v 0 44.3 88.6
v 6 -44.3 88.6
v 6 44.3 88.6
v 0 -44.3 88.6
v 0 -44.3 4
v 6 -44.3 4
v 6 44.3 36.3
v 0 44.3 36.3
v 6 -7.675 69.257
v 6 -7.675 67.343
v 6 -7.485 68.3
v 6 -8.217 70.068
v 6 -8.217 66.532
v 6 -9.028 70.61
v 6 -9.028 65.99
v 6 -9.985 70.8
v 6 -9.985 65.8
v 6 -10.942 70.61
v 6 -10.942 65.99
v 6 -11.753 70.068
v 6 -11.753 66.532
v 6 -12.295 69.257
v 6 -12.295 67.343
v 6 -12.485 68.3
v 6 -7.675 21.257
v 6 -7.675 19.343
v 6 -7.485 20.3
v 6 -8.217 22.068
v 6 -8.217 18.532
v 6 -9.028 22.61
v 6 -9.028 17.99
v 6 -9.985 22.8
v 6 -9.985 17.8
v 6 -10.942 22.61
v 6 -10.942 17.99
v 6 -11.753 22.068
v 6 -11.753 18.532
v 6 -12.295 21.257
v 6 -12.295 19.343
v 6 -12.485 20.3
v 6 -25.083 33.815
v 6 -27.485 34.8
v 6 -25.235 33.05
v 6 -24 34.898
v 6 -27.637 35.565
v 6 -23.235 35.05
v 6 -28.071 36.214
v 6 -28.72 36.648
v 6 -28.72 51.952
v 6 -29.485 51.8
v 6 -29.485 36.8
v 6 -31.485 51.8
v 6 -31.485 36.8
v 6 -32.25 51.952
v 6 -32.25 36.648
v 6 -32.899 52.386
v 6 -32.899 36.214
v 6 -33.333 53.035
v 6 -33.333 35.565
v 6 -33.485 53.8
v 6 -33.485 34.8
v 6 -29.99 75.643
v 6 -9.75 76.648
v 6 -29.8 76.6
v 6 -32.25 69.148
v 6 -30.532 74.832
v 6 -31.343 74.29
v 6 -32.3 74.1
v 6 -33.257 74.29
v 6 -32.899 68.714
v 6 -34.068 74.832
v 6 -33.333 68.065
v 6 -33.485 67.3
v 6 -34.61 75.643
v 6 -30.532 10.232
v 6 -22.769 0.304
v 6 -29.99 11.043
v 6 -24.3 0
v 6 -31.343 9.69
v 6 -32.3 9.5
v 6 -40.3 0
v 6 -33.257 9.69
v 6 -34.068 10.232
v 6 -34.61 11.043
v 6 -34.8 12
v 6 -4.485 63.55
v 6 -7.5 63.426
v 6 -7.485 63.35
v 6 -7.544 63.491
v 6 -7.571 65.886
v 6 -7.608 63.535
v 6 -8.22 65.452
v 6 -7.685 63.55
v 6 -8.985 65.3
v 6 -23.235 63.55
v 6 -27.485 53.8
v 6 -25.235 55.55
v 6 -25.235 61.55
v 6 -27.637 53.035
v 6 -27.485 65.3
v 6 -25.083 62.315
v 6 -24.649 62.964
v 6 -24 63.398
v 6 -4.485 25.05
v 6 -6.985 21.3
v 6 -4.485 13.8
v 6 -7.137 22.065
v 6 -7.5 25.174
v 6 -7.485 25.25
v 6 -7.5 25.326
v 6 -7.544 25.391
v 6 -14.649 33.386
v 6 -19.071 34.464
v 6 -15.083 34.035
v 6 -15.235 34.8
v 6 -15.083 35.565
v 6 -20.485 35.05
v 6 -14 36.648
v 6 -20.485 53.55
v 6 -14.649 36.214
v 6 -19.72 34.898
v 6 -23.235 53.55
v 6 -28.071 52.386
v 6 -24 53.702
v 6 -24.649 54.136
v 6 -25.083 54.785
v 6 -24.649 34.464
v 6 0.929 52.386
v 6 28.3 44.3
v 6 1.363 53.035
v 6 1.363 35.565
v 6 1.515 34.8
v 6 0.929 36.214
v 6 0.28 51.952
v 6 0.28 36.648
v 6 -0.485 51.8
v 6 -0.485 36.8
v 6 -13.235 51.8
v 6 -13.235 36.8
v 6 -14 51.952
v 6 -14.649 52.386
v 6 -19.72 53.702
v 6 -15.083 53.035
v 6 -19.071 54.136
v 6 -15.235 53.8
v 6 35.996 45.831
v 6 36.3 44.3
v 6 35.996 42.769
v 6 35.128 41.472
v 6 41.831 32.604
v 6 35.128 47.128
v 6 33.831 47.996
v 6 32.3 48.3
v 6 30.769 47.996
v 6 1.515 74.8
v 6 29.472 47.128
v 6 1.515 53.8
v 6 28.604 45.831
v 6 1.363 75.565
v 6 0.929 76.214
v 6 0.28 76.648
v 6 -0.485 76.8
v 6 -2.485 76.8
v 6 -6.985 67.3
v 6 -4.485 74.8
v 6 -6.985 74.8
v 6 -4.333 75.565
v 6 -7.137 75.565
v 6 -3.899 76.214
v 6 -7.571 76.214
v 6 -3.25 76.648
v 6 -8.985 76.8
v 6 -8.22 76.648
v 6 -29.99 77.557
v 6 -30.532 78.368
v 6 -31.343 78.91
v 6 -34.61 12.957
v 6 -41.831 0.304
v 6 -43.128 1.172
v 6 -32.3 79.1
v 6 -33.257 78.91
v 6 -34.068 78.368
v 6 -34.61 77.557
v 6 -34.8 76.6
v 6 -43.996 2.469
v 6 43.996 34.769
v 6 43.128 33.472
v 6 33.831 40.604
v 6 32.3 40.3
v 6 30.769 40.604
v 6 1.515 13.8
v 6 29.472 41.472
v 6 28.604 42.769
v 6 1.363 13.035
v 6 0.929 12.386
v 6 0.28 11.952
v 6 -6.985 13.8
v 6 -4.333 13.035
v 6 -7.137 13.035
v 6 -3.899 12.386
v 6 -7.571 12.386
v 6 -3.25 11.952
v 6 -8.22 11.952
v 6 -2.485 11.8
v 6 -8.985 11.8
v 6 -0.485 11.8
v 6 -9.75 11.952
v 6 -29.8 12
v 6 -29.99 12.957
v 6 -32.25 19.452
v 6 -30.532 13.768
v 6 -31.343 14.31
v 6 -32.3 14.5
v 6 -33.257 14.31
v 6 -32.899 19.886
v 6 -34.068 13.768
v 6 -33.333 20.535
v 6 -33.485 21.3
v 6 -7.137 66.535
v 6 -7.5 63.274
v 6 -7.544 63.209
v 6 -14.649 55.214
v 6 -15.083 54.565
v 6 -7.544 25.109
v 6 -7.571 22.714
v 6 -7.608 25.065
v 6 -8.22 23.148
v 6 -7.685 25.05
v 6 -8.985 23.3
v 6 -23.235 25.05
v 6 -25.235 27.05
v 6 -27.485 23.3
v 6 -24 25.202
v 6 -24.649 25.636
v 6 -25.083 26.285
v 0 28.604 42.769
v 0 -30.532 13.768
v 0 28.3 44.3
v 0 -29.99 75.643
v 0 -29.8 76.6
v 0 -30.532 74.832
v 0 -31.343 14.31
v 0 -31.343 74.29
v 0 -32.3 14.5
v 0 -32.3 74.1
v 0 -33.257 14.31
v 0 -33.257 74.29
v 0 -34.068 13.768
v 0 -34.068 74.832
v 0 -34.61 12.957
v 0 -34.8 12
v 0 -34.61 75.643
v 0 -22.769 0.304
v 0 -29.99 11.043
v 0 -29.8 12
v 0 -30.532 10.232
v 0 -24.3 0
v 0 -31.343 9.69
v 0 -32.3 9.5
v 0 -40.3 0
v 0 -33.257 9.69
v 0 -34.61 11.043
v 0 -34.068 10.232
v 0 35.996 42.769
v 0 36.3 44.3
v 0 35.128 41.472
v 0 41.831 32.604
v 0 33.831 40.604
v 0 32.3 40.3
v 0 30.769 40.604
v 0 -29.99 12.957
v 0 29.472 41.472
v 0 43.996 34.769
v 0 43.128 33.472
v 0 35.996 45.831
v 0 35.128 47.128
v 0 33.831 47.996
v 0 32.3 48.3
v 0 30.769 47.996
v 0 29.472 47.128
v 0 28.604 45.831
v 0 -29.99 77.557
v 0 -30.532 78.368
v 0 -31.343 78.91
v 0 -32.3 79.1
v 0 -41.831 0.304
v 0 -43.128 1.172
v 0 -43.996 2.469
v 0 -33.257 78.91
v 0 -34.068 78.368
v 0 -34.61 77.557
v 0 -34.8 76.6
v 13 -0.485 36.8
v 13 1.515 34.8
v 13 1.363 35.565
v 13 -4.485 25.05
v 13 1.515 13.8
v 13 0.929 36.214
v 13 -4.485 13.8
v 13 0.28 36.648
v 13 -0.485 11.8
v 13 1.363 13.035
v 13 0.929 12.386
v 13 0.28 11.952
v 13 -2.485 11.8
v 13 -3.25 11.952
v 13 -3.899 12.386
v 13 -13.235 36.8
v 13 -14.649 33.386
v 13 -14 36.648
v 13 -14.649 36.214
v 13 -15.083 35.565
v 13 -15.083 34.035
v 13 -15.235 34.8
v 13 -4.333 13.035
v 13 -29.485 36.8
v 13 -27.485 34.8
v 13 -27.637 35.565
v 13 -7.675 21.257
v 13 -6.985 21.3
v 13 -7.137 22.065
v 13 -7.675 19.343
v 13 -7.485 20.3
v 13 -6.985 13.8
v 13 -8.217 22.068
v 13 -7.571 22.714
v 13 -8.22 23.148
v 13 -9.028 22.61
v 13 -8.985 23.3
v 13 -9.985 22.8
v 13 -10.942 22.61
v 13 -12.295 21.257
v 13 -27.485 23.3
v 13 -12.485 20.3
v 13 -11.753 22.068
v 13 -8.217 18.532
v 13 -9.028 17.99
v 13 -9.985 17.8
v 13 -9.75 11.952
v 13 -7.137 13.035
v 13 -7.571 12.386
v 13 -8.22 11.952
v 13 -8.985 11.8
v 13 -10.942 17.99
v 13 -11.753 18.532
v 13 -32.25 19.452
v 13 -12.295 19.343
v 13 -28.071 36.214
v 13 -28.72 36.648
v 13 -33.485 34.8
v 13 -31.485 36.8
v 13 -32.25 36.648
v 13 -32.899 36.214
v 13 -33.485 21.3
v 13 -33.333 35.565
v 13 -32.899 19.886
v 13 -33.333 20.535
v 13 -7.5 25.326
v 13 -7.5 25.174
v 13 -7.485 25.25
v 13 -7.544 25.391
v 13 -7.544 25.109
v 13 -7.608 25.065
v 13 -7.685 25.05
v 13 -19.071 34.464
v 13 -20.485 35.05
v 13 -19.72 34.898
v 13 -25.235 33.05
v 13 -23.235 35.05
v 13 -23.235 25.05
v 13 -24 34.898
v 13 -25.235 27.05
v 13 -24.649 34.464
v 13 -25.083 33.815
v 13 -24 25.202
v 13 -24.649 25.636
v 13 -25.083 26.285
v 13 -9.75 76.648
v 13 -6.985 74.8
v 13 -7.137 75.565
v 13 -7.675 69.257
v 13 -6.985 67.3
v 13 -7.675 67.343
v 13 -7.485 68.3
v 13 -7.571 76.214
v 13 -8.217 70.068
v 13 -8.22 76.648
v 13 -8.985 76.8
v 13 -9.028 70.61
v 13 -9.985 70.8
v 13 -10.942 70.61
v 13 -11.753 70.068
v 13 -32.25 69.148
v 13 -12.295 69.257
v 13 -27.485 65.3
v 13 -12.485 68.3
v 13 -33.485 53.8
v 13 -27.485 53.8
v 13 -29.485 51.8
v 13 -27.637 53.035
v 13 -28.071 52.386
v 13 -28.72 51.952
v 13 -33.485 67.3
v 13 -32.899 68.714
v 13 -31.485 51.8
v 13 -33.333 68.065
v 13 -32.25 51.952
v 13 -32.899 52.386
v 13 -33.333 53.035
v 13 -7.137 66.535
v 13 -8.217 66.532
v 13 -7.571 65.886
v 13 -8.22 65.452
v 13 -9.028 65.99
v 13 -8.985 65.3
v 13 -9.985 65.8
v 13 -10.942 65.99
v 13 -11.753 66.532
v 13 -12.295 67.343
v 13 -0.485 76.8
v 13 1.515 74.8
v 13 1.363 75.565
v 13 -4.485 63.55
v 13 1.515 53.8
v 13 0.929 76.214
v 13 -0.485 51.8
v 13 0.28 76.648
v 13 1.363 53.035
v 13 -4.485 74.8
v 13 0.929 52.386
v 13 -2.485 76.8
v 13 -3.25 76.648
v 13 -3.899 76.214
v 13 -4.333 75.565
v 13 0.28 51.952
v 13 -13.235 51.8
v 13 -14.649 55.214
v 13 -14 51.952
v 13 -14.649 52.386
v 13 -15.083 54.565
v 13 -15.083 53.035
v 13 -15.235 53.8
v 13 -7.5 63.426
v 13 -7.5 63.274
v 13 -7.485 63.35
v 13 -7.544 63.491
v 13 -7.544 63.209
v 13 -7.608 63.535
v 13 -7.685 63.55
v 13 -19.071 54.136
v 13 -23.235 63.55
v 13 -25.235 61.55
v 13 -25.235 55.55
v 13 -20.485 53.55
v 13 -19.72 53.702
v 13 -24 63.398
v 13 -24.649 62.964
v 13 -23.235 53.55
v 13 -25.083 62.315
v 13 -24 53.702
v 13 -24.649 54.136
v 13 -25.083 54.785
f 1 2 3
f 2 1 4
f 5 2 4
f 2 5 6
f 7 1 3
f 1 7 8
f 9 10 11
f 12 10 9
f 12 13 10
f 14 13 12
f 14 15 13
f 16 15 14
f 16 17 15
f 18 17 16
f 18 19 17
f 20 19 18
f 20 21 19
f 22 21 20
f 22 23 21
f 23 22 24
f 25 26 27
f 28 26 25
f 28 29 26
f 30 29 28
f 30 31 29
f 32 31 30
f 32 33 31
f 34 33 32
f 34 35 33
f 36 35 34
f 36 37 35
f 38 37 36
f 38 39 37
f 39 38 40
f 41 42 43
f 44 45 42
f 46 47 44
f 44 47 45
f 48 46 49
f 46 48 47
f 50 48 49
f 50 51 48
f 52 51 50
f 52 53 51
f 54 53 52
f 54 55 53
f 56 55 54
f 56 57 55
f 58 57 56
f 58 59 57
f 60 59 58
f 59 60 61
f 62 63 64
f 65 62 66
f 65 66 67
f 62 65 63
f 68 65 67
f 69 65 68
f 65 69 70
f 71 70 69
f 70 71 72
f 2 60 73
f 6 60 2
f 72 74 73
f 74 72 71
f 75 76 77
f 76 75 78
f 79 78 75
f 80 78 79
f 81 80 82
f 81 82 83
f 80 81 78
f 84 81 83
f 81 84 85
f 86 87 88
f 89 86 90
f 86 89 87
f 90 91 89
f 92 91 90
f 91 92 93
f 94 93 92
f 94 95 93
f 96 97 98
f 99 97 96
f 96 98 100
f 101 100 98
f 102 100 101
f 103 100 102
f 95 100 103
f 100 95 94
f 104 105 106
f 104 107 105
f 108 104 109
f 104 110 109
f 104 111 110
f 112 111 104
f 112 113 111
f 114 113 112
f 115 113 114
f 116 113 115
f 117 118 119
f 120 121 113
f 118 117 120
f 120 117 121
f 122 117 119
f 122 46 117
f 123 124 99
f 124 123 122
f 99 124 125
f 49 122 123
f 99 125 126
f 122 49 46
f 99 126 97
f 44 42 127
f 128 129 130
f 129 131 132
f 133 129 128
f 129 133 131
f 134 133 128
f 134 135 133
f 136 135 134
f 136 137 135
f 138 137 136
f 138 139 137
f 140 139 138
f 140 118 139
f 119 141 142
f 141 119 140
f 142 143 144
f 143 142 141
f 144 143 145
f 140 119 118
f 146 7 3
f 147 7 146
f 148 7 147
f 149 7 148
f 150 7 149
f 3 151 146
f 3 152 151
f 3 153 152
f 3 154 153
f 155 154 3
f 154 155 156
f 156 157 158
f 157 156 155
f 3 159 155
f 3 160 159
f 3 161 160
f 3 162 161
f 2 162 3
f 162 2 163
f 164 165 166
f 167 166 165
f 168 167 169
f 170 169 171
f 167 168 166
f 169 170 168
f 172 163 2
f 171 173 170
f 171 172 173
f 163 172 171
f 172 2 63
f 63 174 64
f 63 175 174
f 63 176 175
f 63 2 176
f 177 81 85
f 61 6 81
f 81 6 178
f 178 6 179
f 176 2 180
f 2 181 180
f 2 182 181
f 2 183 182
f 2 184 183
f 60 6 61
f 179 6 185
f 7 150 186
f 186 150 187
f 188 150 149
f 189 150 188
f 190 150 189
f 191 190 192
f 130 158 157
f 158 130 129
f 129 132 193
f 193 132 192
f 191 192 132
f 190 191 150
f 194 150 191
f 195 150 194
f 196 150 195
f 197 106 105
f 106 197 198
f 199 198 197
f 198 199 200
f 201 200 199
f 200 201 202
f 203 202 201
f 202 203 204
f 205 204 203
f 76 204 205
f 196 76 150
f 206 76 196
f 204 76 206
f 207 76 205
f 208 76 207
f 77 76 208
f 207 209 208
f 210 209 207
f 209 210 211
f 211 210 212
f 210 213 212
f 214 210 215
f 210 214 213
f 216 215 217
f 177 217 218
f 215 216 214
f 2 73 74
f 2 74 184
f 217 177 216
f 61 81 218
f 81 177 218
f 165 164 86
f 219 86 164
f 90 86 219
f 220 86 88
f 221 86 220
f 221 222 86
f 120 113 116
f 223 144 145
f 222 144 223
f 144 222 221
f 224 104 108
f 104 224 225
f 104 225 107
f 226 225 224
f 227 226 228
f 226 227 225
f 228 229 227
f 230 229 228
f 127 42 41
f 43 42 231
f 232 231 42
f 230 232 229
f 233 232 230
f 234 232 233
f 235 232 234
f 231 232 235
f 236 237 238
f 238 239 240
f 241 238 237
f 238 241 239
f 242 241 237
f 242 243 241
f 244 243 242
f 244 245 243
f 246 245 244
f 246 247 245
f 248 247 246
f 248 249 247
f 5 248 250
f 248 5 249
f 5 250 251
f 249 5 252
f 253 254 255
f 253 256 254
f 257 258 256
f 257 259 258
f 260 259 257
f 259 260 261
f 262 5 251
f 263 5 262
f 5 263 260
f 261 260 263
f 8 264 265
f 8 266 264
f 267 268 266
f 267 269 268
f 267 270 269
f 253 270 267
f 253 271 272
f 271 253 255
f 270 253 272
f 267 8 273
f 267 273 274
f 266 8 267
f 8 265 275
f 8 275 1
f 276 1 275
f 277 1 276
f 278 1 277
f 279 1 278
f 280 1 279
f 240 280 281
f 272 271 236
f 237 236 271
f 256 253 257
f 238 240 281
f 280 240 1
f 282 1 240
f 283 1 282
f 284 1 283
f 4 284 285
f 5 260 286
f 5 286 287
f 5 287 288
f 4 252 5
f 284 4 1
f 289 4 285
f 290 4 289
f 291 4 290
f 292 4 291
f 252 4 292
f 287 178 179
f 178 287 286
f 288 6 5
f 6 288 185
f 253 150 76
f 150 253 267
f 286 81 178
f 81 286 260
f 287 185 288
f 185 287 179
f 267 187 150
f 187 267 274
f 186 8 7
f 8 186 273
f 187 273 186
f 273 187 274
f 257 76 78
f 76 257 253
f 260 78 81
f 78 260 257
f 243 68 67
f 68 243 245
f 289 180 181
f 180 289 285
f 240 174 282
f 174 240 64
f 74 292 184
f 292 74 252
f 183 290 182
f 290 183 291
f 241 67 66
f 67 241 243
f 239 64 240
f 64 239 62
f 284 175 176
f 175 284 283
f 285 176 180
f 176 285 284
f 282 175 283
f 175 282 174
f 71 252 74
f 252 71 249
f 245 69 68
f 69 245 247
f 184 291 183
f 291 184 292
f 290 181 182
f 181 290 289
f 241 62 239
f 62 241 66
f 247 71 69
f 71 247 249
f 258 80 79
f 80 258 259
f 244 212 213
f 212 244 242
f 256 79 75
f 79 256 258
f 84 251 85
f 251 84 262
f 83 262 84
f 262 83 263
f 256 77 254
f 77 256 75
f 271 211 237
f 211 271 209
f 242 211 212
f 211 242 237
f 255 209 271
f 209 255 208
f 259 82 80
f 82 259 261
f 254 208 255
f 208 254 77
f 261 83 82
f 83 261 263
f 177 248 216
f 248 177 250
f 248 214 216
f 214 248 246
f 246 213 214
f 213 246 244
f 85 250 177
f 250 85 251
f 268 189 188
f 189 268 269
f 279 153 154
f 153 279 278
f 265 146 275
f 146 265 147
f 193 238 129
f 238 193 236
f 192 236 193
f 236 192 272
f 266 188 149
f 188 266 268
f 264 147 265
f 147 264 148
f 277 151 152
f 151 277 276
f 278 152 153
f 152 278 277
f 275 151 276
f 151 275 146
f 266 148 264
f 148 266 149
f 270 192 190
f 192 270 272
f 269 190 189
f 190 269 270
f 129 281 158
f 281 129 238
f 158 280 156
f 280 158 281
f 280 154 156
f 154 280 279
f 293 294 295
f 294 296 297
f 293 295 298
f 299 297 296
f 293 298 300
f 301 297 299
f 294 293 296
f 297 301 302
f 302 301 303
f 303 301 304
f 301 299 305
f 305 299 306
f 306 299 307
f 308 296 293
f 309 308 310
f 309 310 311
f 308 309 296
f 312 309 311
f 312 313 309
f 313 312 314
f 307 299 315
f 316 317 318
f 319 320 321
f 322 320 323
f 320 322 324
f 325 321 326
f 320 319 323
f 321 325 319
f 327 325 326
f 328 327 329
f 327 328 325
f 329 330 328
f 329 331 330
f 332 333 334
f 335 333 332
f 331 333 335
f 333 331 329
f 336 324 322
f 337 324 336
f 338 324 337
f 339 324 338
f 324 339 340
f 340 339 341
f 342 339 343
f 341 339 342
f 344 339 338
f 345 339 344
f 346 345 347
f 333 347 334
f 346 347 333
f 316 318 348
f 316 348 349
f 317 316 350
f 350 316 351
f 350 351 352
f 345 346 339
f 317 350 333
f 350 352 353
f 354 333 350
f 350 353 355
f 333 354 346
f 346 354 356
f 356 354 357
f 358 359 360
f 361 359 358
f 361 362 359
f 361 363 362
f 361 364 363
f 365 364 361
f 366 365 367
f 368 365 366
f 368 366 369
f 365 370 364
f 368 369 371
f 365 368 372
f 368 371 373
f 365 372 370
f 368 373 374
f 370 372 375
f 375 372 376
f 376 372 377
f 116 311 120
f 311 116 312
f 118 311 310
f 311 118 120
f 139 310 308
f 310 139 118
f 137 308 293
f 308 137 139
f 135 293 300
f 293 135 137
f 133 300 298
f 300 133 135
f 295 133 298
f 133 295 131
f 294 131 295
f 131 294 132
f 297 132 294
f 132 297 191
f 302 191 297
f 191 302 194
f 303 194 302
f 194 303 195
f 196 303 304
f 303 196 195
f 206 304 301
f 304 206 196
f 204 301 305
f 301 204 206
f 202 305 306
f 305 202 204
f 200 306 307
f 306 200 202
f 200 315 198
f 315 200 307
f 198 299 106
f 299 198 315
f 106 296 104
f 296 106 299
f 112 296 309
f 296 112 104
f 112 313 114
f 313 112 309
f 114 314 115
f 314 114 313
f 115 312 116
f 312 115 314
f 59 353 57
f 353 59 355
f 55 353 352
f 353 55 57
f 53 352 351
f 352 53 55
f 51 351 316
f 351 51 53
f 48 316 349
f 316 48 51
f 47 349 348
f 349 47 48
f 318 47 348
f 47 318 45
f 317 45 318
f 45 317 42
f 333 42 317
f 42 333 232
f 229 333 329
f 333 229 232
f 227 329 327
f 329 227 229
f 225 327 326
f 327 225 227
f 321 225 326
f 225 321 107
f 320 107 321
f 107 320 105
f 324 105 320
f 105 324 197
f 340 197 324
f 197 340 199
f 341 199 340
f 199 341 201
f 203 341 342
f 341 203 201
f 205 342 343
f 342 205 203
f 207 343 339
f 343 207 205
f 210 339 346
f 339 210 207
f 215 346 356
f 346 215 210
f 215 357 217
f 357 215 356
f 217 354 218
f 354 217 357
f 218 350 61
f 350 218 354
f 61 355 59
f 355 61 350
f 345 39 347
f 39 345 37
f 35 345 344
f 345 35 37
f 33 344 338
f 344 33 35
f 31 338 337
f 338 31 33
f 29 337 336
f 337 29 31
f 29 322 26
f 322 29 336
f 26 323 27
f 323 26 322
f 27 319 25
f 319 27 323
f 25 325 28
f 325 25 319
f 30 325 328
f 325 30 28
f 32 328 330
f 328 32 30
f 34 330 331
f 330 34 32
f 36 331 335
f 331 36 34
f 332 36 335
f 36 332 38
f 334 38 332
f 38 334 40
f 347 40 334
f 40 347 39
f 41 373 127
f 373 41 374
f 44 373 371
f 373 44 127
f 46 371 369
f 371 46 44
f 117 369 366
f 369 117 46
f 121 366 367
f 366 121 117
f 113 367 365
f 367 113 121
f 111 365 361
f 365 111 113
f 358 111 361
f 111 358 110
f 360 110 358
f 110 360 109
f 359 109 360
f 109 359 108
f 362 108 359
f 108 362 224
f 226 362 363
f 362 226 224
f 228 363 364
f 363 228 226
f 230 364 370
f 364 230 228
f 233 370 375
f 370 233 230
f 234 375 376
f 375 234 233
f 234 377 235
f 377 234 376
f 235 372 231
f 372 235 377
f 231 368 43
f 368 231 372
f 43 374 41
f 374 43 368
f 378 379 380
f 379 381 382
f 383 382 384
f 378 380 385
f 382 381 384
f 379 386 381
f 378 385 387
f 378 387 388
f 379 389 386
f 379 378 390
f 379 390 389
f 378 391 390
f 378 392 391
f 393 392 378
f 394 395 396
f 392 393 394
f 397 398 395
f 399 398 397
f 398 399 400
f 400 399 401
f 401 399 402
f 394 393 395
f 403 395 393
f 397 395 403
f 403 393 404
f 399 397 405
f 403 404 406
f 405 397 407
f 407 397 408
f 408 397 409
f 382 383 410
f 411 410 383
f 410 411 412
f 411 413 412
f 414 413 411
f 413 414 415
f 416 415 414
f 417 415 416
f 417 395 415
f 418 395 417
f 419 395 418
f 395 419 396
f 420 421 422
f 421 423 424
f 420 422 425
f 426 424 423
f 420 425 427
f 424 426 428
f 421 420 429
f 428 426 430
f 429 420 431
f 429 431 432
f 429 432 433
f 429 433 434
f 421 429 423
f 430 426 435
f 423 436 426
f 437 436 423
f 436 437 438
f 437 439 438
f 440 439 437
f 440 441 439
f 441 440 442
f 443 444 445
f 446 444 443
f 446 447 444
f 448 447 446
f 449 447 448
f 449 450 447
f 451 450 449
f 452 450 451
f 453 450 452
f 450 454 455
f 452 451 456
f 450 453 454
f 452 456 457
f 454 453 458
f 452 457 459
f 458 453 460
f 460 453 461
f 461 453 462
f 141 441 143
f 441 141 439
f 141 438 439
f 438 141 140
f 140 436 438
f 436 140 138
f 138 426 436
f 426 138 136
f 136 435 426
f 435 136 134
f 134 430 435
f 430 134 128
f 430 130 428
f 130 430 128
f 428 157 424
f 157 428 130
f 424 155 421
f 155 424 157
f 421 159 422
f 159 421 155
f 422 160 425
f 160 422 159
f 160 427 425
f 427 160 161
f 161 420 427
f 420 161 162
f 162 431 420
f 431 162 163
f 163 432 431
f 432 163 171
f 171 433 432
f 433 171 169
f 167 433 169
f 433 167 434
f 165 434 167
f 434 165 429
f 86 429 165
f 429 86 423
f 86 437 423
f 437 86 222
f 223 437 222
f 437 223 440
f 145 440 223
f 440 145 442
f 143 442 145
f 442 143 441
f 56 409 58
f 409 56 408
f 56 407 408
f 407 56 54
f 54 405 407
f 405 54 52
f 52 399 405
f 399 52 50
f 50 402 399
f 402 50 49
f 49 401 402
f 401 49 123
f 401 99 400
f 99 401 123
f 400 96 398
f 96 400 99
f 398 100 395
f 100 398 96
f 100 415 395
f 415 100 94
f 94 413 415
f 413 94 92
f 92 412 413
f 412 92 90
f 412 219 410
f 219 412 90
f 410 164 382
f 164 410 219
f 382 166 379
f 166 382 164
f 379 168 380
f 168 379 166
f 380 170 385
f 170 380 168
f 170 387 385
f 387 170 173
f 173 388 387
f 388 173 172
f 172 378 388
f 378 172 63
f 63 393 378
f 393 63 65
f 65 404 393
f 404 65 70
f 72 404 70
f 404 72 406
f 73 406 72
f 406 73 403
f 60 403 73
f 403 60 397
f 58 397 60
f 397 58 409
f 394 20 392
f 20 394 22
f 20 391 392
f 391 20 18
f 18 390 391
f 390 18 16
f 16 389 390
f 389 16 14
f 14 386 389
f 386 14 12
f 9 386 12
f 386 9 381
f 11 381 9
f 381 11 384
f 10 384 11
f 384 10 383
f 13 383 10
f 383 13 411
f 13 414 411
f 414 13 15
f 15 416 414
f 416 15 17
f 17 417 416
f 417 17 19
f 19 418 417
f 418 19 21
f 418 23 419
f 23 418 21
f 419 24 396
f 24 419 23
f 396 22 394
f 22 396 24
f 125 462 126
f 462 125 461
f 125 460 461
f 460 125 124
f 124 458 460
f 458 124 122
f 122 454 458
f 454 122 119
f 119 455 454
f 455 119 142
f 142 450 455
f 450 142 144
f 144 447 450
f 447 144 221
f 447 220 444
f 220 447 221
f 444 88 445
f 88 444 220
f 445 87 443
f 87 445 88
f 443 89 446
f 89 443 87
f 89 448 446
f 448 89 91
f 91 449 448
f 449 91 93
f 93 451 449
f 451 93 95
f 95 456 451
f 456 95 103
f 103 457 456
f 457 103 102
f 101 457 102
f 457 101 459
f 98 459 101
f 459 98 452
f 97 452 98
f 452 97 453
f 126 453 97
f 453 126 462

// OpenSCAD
// file: ../../conf/constants.scad
/**********************************************************************************************************************
 **
 ** conf/constants.scad
 **
 ** This file contains constants and aliases used for the part size definitions.
 **
 **********************************************************************************************************************/

/**
 * The alias names for the rails.
 * A is the "front left" rail, B the "front right" rail, C the back rail.
 * These constants are also used for the sides of the frame and the effector; in this case, side A is the one 
 * opposing rail A.
 */
A = 0;
B = 1;
C = 2;

/**
 * Aliases for metric screw/nut sizes.
 */
M2 = 2;
M3 = 3;
M4 = 4;
M5 = 5;
M8 = 8;

/** 
 * Aliases for NEMA stepper motors.
 */
NEMA14 = 14;
NEMA17 = 17;
NEMA23 = 23;
// file: ../../conf/printer_config.scad
/**********************************************************************************************************************
 **
 ** conf/printer_config.scad
 **
 ** This file contains the main control variables that determine the size and shape of the printer. Note that in the
 ** actual parts specifications, the constants defined here will only ever be accessed through functions defined in
 ** conf/derived_sizes.scad exclusively to allow for easier adaptation, should the mode of calculation change. 
 **
 ** All sizes in mm. Caution: Little to no cross-checking is implemented. Change values sensibly and one at a time.
 **
 ** This file is NOT to be included by any other file except for conf/derived_sizes.scad.
 **
 **********************************************************************************************************************/

include <constants.scad>

// ===== PRINTER CONFIGURATION ========================================================================================

// The length of the vertical MakerSlide extrusions that make up the rails for the carriages.
FRAME_V_RAIL_HEIGHT = 800;

// The length of the horizontal 20x20 V-Slot extrusions that form the sides of the triangle.
FRAME_H_RAIL_LENGTH = 400;

// ===== FABRICATED PART DIMENSIONS ===================================================================================

// The additional clearance to leave around the MakerSlide extrusion.
MAKERSLIDE_CLEARANCE = 0.05;

// The thickness of the walls outside the extruded parts.
FRAME_PART_WALL_THICKNESS = 3;

// The thickness of the wall that separates the vertical rails from the horizontal extrusions.
FRAME_V_H_RAIL_SEPARATION = 8;

// The depth of the holes that hold the V-Slot extrusions.
FRAME_PART_VSLOT_DEPTH = 30;

// Whether to use a horizontal rail at the base of the printer or not.
FRAME_HORIZONTAL_BASE_RAIL = false;

// The depth of the holes in the foot that hold the MakerSlide extrusions. This is for the foot version that holds
// a horizontal rail.
FRAME_FOOT_RAIL_MAKERSLIDE_DEPTH = 25; 

// The depth of the holes in the foot that hold the MakerSlide extrusions. This is for the foot version that does not
// hold a horizontal rail.
FRAME_FOOT_NORAIL_MAKERSLIDE_DEPTH = 17.5; 

// The size of the screws that can be used to mount the foot to the underlying surface.
FRAME_FOOT_BOTTOM_SCREW_SIZE = M5;

// The height of the bracket that holds the motor. WARNING: Increasing this might make it difficult to 
// turn the screws that hold the motor.
FRAME_MOTOR_BRACKET_HEIGHT = 25;

// The height of the bracket that holds the intermediate level with the working surface (print bed).
FRAME_BED_BRACKET_HEIGHT = 25; 

// The depth of the holes in the head that hold the MakerSlide extrusions.
FRAME_HEAD_MAKERSLIDE_DEPTH = 35; 

// The thickness of the carriage base plate. A thicker plate will make the carriage stiffer, but cost more
// material to print and take away space from the working area.
CARRIAGE_PLATE_THICKNESS = 6;

// The width of the border around the holes in the carriage base plate that hold the V-Wheels. 
CARRIAGE_PLATE_BORDER_WIDTH = 8;

// The range by which the vertical belt tensioner can be adjusted.
TENSIONER_RANGE = 15;

// The distance between the rods that hold the effector.
ROD_DISTANCE = 65;

// The outer diameter of the rods.
ROD_OUTER_DIAMETER = 6;

// The inner diameter of the rods. Set to 0 if the rods are not hollow.
ROD_INNER_DIAMETER = 4;

// The additional clearance to leave between the rod and the holder.
ROD_CLEARANCE = 0.05;

// The thickness of the outer wall around the rod.
ROD_HOLDER_WALL_THICKNESS = 2;

// The depth of the insets that hold the rods.
ROD_HOLDER_DEPTH = 10;

// The minimum angle of the arms.
ROD_MIN_ANGLE = 20;

// The factor used to round up the rod length.
ROD_ROUND_UP_TO = 5;

// The thickness of the magnet holder arms.
MAGNET_HOLDER_THICKNESS = 5;

// The additional clearance to leave around the magnet holder pin.
MAGNET_CLEARANCE = 0.025;

// The upward angle of the ball holder on the carriage.
CARRIAGE_BALL_HOLDER_ANGLE = 10;

// The additional distance between the magnets on the effector (not the rod distance - the other one :-)).
// This value is added to the minimum distance determined by the magnet size and wall thickness.
EFFECTOR_BALL_ADDITIONAL_DISTANCE = 15;

// The thickness of the effector plate.
EFFECTOR_THICKNESS = 8;
// file: ../extrusions/makerslide.scad
/**********************************************************************************************************************
 **
 ** parts/extrusions/makerslide.scad
 **
 ** This file ontains some general functions that provide the dimensions of the profile as well as the modules used 
 ** to import the rendered rails. 
 ** This file is intended to be included by other files down the line.
 **
 **********************************************************************************************************************/

use <../../conf/colors.scad>
use <../../conf/derived_sizes.scad>
use <../../conf/part_sizes.scad>

/**
 * Provides the pre-rendered main vertical rail.
 * The extrusion will reach into positive X and Z space while being centered on the Y axis.
 */
module makerslide_vertical_rail() {
	color_extrusion()
		import(file = "makerslide_rail.stl"); 
}

/**
 * Create an object that resembles the outer shell of a MakerSlide extrusion. Usage is similar
 * to makerslide_vertical_rail(length). This is handy to punch a hole into a printed part that will later
 * accomodate the MakerSlide extrusion.
 */
module makerslide_punch(length) {
	color_punch()
		linear_extrude(height = length, center = false, convexity = 10)
			union() {
				hull() {
					// use two circles for the back sides
					_y_offset = makerslide_base_width()/2 - makerslide_edge_radius();
					translate([makerslide_edge_radius(), -_y_offset, 0])
						circle(r = makerslide_edge_radius(), $fn = makerslide_edge_resolution());
					translate([makerslide_edge_radius(), _y_offset, 0])
						circle(r = makerslide_edge_radius(), $fn = makerslide_edge_resolution());
					// use a rectangle to shape the front side
					translate([makerslide_base_depth() - 1, -makerslide_base_width()/2, 0])
						square([1, makerslide_base_width()]);
				}
				_rail_base_x = makerslide_base_depth() - makerslide_edge_radius() - makerslide_rail_depth();
				_rail_offset_y = makerslide_base_width()/2;
				_rail_punch_width = makerslide_rail_width();
				_rail_punch_depth = 2*makerslide_rail_depth() + makerslide_edge_radius();
				translate([_rail_base_x, -_rail_offset_y - _rail_punch_width, 0])
					square([_rail_punch_depth, _rail_punch_width]);
				translate([_rail_base_x, _rail_offset_y, 0])
					square([_rail_punch_depth, _rail_punch_width]);

				// previous version:
				// // use the profile itself as the basic shape
				// import(file = "makerslide.dxf"); 
				// // add a rectangle to fill the holes on the left/right (small) sides 
				// // as well as most of the inside of the profile
				// translate([2, -20, 0])
				// 	square([18, 40]);
				// // add a second rectangle to fill the gaps on the back (we want to keep the rounded edges)
				// translate([0, -18, 0])
				// 	square([2, 36]);
				
			}
}
// file: ../../bom/bom.scad
/**********************************************************************************************************************
 **
 ** bom/bom.scad
 **
 ** This file provides the functions to generate a basic bill of materials (BOM) from the model.
 **
 **********************************************************************************************************************/

/**
 * A recursive function to format the parent module hierarchy as a series of delimited sub-strings.
 * Example: "vertical_axis_assembly>_vertical_axis_assembly>makerslide_vertical_rail"
 */
function _bom_parent_list(level, delimiter = ">") = 
	(level < $parent_modules - 1) ? str(_bom_parent_list(level = level + 1), delimiter, parent_module(level)) : "";

module bom_entry(description = "", size = "", number = 1) {
	// Only perform any actions if WRITE_BOM is set. This is done through the command line - see Makefile.
	if (WRITE_BOM) {
		echo(str("BOM;", description, ";", size, ";", number, ";", _bom_parent_list(level = 2)));
	}
}
// file: ../../conf/part_sizes.scad
/**********************************************************************************************************************
 **
 ** conf/part_sizes.scad
 **
 ** This file contains functions that provide fixed sizes of external standard parts. Normally, these values
 ** would have been kept with the individual parts, but that would result in a recursive dependency.
 **
 **********************************************************************************************************************/

// ===== ALIAS CONSTANTS FOR VARIOUS SIZES =============================================================================

M3 = 3;
M4 = 4;
M5 = 5;

NEMA14 = 14;
NEMA17 = 17;
NEMA23 = 23;

// ===== parts/extrusions/vslot_2020.scad ==============================================================================

// The dimensions were taken from the file vslot_2020_dimensions.jpg.

/**
 * Return the depth (X size) and width (Y size) of the V=Slot extrusion.
 */
function vslot_2020_depth() = 20;
function vslot_2020_width() = 20;

/**
 * The edge radius of the back side and the resolution used to render the curve.
 */
function vslot_2020_edge_radius() = 1.5;
function vslot_2020_edge_resolution() = 64;

/**
 * Return the offset of the screw/nut slots from the back edges or the center.
 */
function vslot_2020_slot_offset() = 10;

// ===== parts/extrusions/makerslide.scad ==============================================================================

// All dimensions were taken from the file makerslide_b17022_rev_2.pdf.

/**
 * Return the depth (X size) and width (Y size) of the base of the MakerSlide extrusion. These measurements exclude the 
 * rail extensions on the front side, i. e. only comprise the rectangular main body.
 */
function makerslide_base_depth() = 20;
function makerslide_base_width() = 40;

/**
 * Return the additional depth (X size) and width (Y size) introduced by the rail extensions. Note that the width
 * specified here comprises a single rail only.
 */
function makerslide_rail_depth() = 4.75/2;
function makerslide_rail_width() = 5.9358/2;

/**
 * Return the depth (X size) and width (Y size) of the MakerSlide extrusion. These measurements comprise the 
 * rail extensions on the front side.
 */
function makerslide_depth() = makerslide_base_depth() + makerslide_rail_depth();
function makerslide_width() = makerslide_base_width() + 2*makerslide_rail_width();

/**
 * The distance from the "back center" (the origin) of the MakerSlide vertical rails to the outer edges of the rail.
 * Measured value from the DXF drawings: 30.52933453 mm.
 * Calculated size: 32.065 mm
 * The difference is probably due to a rounded edge in the drawing.
 */
function makerslide_rail_edge_distance() = sqrt(pow(makerslide_width() / 2, 2) + pow(makerslide_depth(), 2));

/**
 * The edge radius of the back side and the resolution used to render the curve.
 */
function makerslide_edge_radius() = 1;
function makerslide_edge_resolution() = 64;

/**
 * Return the offset of the screw/nut slots from the back edges or the center.
 */
function makerslide_slot_offset() = 10;

// ===== SCREWS, NUTS, BOLTS AND OTHER HARDWARE =======================================================================

/**
 * The thickness of washers of various dimensions.
 */
function washer_thickness(size = M4) =
			(size == M3) ? 0.5 :
	        (size == M4) ? 0.8 :
	        (size == M5) ? 1.0 : -1;	
function washer_thickness_large(size = M4) =
			(size == M3) ? 0.8 :
	        (size == M4) ? 1.0 :
	        (size == M5) ? 1.2 : -1;	

/**
 * The thickness of nuts of various dimensions.
 */
function nut_thickness(size = M4) =
			(size == M3) ? 2.4 :
	        (size == M4) ? 3.2 :
	        (size == M5) ? 4.7 : -1;	

/**
 * The dimensions of a threaded insert, M3x7mm.
 */
function insert_outer_diameter_m3() = 5.0; // TODO validate this value
function insert_inner_diameter_m3() = 3.0;

// ===== VERTICAL AXIS NEMA 17 STEPPER MOTORS ==========================================================================

/**
 * The NEMA size of the motor.
 */
function vmotor_size() = 17;

/**
 * The outer dimensions of the motor (width and height) perpendicular to the axis. 
 * The depth is irrelevant (at the moment, at least).
 */
function vmotor_width() = 42.2;
function vmotor_height() = 42.2;

/**
 * The length of the shaft.
 */
function vmotor_shaft_length() = 24;

/**
 * The diameter of the round hole to leave for placing the motor
 */
function vmotor_mounting_hole_diameter() = 25; // NEMA drawings say 22, better leave some clearance here
function vmotor_mounting_hole_resolution() = 32;

/**
 * The distance between the screw holes on the front face of the motor.
 */
function vmotor_screw_distance() = 31;

/** 
 * The size of the screw holes to hold the motor.
 */
function vmotor_screw_size() = 3;

// ===== GT2 TIMING BELTS AND ASSOCIATED HARDWARE =====================================================================

/**
 * The dimensions of a GT2 belt.
 */
function gt2_belt_width() = 6;
function gt2_belt_thickness_max() = 1.38; 
function gt2_belt_groove_depth()  = 0.75;
function gt2_belt_thickness_min() = gt2_belt_thickness_max() - gt2_belt_groove_depth();

/**
 * The diameter and overall depth of the GT2 pulley.
 */
function gt2_pulley_diameter() = 16;
function gt2_pulley_depth() = 16;
function gt2_pulley_base_depth() = 7.5;
function gt2_pulley_inner_diameter_max() = 12.22;
function gt2_pulley_inner_diameter_min() = gt2_pulley_inner_diameter_max() - gt2_belt_groove_depth();

// ===== WHEELS AND BEARINGS ==========================================================================================

/**
 * The size of a 625 ball bearing.
 */
function bearing_625_bore_diameter() = 5;
function bearing_625_outer_diameter() = 16;
function bearing_625_width() = 5;

/** 
 * The dimensions of the eccentric spacer.
 */
function vwheel_spacer_hex_height() = 6;
function vwheel_spacer_inset_height() = 2; // TODO validate this number
function vwheel_spacer_total_height() = vwheel_spacer_hex_height() + vwheel_spacer_inset_height();
function vwheel_spacer_hex_size() = 8; // the wrench size in mm
function vwheel_spacer_inset_diameter() = 7.12; // TODO validate this number
function vwheel_spacer_bore_diameter() = 5;

/**
 * Some of the dimensions of a V-Wheel for the MakerSlide rails.
 */
function vwheel_width() = 7.5;
function vwheel_inner_bevel_width() = 1;
function vwheel_bearing_inset() = (vwheel_width() - vwheel_inner_bevel_width()) / 2;
function vwheel_assembly_thickness() = 2 * bearing_625_width() + 1; // the inner spacer is 1 mm thick
function vwheel_assembly_overhang() = (bearing_625_width() + 0.5) - (vwheel_width() / 2); 

/**
 * Some data to position the V-Wheels on the MakerSlide rails.
 * see http://store.amberspyglass.co.uk/v-wheel.html
 */
function vwheel_pair_center_distance() = 64.6;
function vwheel_depth_offset() = makerslide_base_depth();
function vwheel_width_offset() = vwheel_pair_center_distance() / 2;

function vwheel_max_mounting_hole_size() = 8; // TODO derive this from the excentrical nut size!
// file: ../../conf/colors.scad
/**********************************************************************************************************************
 **
 ** conf/colors.scad
 **
 ** This file defines some modules to use symbolic colors throughout the entire project.
 **
 **********************************************************************************************************************/

/**
 * The color of the aluminium extrusions.
 */
module color_extrusion() {
	color("LightGrey")
		children();
} 

/**
 * The color of the "outer" printed frame elements.
 */
module color_printed_outer_frame() {
	color("RoyalBlue")
		children();
} 

/**
 * The color of the "inner" printed frame elements.
 */
module color_printed_inner_frame() {
	color("DodgerBlue")
		children();
} 

/**
 * The color of the printed carriages.
 */
module color_printed_carriage() {
	color("DodgerBlue")
		children();
} 

/**
 * The color of the printed tensioners.
 */
module color_printed_tensioner() {
	color("PowderBlue")
		children();
} 

/**
 * The color of the stock hardware parts like nuts, bolts and screws.
 */
module color_hardware() {
	color("DarkSlateGray")
		children();
} 

/**
 * The color of the gears and ball bearings.
 */
module color_gears() {
	color("Gray")
		children();
} 

/**
 * The color of the belts.
 */
module color_belt() {
	color("SaddleBrown")
		children();
} 

/**
 * The color of the stepper motors.
 */
module color_motor() {
	color("DimGray")
		children();
} 

/**
 * The color of the end switches.
 */
module color_switch() {
	color([0.15, 0.15, 0.15])
		children();
} 

/**
 * The color of the V-Wheels.
 */
module color_vwheels() {
	color([0.075, 0.075, 0.075])
		children();
} 

/**
 * The color of punches and other objects that are usually not intended to be rendered as such, but rather to be
 * used as subtractive objects.
 */
module color_punch() {
	color("Red")
		children();
} 
// main file
/**********************************************************************************************************************
 **
 ** parts/printed/carriage.scad
 **
 ** This file constructs the carriage that will hold the arms. To assemble the printer, you need three of these parts.
 **
 **********************************************************************************************************************/

include <../../conf/colors.scad>
include <../../conf/derived_sizes.scad>
include <../../conf/part_sizes.scad>

use <../../bom/bom.scad>
use <../../parts/extrusions/makerslide.scad>
use <../../parts/vitamins/vitamins.scad>

/**
 * Renders the lower part of the base plate of the carriage that holds the wheels.
 */
module _carriage_lower_base_plate() {
	difference() {
		// the plate
		hull() {
			_corner_distance = vwheel_max_mounting_hole_size()/2 + carriage_plate_border_width();
			_corner_distance_round = _corner_distance - carriage_plate_edge_radius();
	
			// above and left of wheel 1: a cube (because there will be the upper part above it)
			translate([0, carriage_wheel1_y() - _corner_distance, carriage_wheel1_z()])
				cube(size = [carriage_plate_thickness(), _corner_distance, _corner_distance]);
	
			// below and left of wheel 2
			translate([0, carriage_wheel2_y() - _corner_distance_round, carriage_wheel2_z() - _corner_distance_round])
				rotate([0, 90, 0])
					cylinder(r = carriage_plate_edge_radius(), 
						     h = carriage_plate_thickness(),
						     $fn = carriage_plate_edge_resolution());
	
			// below and right of wheel 2
			translate([0, carriage_wheel2_y() + _corner_distance_round, carriage_wheel2_z() - _corner_distance_round])
				rotate([0, 90, 0])
					cylinder(r = carriage_plate_edge_radius(), 
						     h = carriage_plate_thickness(),
						     $fn = carriage_plate_edge_resolution());
	
			// way above and right of wheel 3: a cube (because there will be the upper part above it)
			translate([0, carriage_wheel3_y(), carriage_wheel1_z()])
				cube(size = [carriage_plate_thickness(), _corner_distance, _corner_distance]);
	
			// below and right of wheel 3
			translate([0, carriage_wheel3_y() + _corner_distance_round, carriage_wheel3_z() - _corner_distance_round])
				rotate([0, 90, 0])
					cylinder(r = carriage_plate_edge_radius(), 
						     h = carriage_plate_thickness(),
						     $fn = carriage_plate_edge_resolution());
		}
		// minus the three holes for the V-Wheel mounts
		translate([0, carriage_wheel1_y(), carriage_wheel1_z()])
			rotate([0, 90, 0])
				cylinder(d = carriage_wheel1_hole_diameter(),
			    		 h = carriage_plate_thickness() + epsilon(),
					     $fn = carriage_wheel_hole_resolution());
		translate([0, carriage_wheel2_y(), carriage_wheel2_z()])
			rotate([0, 90, 0])
				cylinder(d = carriage_wheel2_hole_diameter(),
			    		 h = carriage_plate_thickness() + epsilon(),
					     $fn = carriage_wheel_hole_resolution());
		translate([0, carriage_wheel3_y(), carriage_wheel3_z()])
			rotate([0, 90, 0])
				cylinder(d = carriage_wheel3_hole_diameter(),
			    		 h = carriage_plate_thickness() + epsilon(),
					     $fn = carriage_wheel_hole_resolution());
	}
}

/**
 * Renders the upper part of the base plate of the carriage that holds the magnets.
 */
module _carriage_upper_base_plate() {
	// TODO 
}

/**
 * Renders the set of blocks that clamp onto the belt.
 * This assembly is drawn for the lower belt and has to be mirrored for the upper part.
 * The origin of this assembly is at the bottom where the belt enters the blocks.
 * Due to the way that linear_extrude works, the blocks are drawn in the XY plane, extruded and then rotated.
 * This means that absolute target +Z is -X here.
 */
module _carriage_belt_holder() {
	translate([carriage_belt_holder_depth(), 0, 0])
		rotate([0, -90, 0])
			linear_extrude(height = carriage_belt_holder_depth()) {
				difference() {
					union() {
		
						// shorthands to keep things readable
						_er = carriage_belt_holder_edge_radius();
						_ser = carriage_belt_holder_small_edge_radius();
						_res = carriage_belt_holder_edge_resolution();
		
						// the center part is created as a hull of four cylinders, the lower right one being much smaller 
						// than the others
						union() {
							_cp_height       = carriage_belt_holder_center_height();
							_cp_bottom_width = carriage_belt_holder_width() - 
							                   2 * carriage_belt_holder_outer_width() - 
							                   carriage_belt_holder_channel_width() - 
							                   carriage_belt_holder_path_width() - 1;
							_cp_top_width    = _cp_bottom_width - _cp_height - 1; // 45° slope
							_cp_left         = -_cp_bottom_width - carriage_belt_holder_channel_width()/2 - 0.5;
							_cp_top_right    = _cp_left + _cp_top_width;
							_cp_bottom_right = _cp_left + _cp_bottom_width;
							_cp_top          = carriage_belt_holder_height() - carriage_belt_holder_path_width();
							_cp_bottom       = _cp_top - _cp_height;
							hull() {
								// top left corner
								translate([_cp_top - _er, _cp_left + _er])
									circle(r = _er, $fn = _res);
								// bottom left corner
								translate([_cp_bottom + _er, _cp_left + _er])
									circle(r = _er, $fn = _res);
								// top right corner
								translate([_cp_top - _er, _cp_top_right - _er])
									circle(r = _er, $fn = _res);
								// bottom right corner
								translate([_cp_bottom + _ser, _cp_bottom_right - _ser])
									circle(r = _ser, $fn = _res);
							}
						}
		
						union() {
							// bottom part
							_lp_rh_width  = carriage_belt_holder_width() - 
							                carriage_belt_holder_outer_width() - 
							                carriage_belt_holder_channel_width();
							_lp_rh_height = carriage_belt_holder_height() - 
							                2 * carriage_belt_holder_path_width() - 
							                carriage_belt_holder_center_height();
							_lp_rh_left   = -_lp_rh_width - carriage_belt_holder_channel_width()/2;
							_lp_rh_right  = -carriage_belt_holder_channel_width()/2;
							_lp_rh_bottom = 0;
							_lp_rh_top    = _lp_rh_bottom + _lp_rh_height;
							hull() {
								// lower right corner
								translate([_lp_rh_bottom + _er, _lp_rh_right - _er])
									circle(r = _er, $fn = _res);
								// upper right corner
								translate([_lp_rh_top - _er , _lp_rh_right - _er])
									circle(r = _er, $fn = _res);
								// upper left corner
								translate([_lp_rh_top - _er, _lp_rh_left + _er])
									circle(r = _er, $fn = _res);
							}
				
							// left part
							_lp_lh_width  = carriage_belt_holder_outer_width();
							_lp_lh_height = carriage_belt_holder_center_height() + 
							                2 * carriage_belt_holder_path_width() + 2*_er;
							//_lp_lh_left   = -_lp_lh_width - _lp_rh_width - carriage_belt_holder_channel_width()/2;
							_lp_lh_left   = - carriage_belt_holder_width() +
							                carriage_belt_holder_channel_width()/2 +
							                carriage_belt_holder_outer_width();
							_lp_lh_right  = _lp_lh_left + _lp_lh_width;
							_lp_lh_bottom = carriage_belt_holder_height() - _lp_lh_height;
							_lp_lh_top    = _lp_lh_bottom + _lp_lh_height;
							hull() {
								// lower right corner
								translate([_lp_lh_bottom + _er, _lp_lh_right - _er])
									circle(r = _er, $fn = _res);
								// upper right corner
								translate([_lp_lh_top - _er, _lp_lh_right - _er])
									circle(r = _er, $fn = _res);
								// lower left corner
								translate([_lp_lh_bottom + _er, _lp_lh_left + _er])
									circle(r = _er, $fn = _res);
								// upper left corner
								translate([_lp_lh_top - _er, _lp_lh_left + _er])
									circle(r = _er, $fn = _res);
							}
						}
		
						// the right part consists of two hulls - an upper and a lower one
						union() {
		
							// the upper hull is formed using two cylinders at the top and a cube at the bottom
							_rp_uh_height       = carriage_belt_holder_center_height() + carriage_belt_holder_path_width();
							_rp_uh_bottom_width = carriage_belt_holder_outer_width();
							_rp_uh_top_width    = _rp_uh_bottom_width + _rp_uh_height; // 45° slope
							_rp_uh_right        = carriage_belt_holder_channel_width()/2 + _rp_uh_bottom_width;
							_rp_uh_top_left     = _rp_uh_right - _rp_uh_top_width + _er/2;
							_rp_uh_bottom_left  = _rp_uh_right - _rp_uh_bottom_width;
							_rp_uh_top          = carriage_belt_holder_height();
							_rp_uh_bottom       = carriage_belt_holder_height() - _rp_uh_height;
							hull() {
								// lower horizontal bar
								translate([_rp_uh_bottom, _rp_uh_bottom_left])
									square([_er, _rp_uh_bottom_width]);
								// upper right corner
								translate([_rp_uh_top - _er, _rp_uh_right - _er])
									circle(r = _er, $fn = _res);
								// upper left corner
								translate([_rp_uh_top - _er, _rp_uh_top_left + _er])
									circle(r = _er, $fn = _res);
							}
		
							// the lower hull is formed of a corresponding cube at the top and two cylinders at the bottom
							_rp_lh_height = carriage_belt_holder_height() - _rp_uh_height;
							_rp_lh_width  = carriage_belt_holder_outer_width();
							_rp_lh_right  = carriage_belt_holder_channel_width()/2 + _rp_lh_width;
							_rp_lh_left   = _rp_lh_right - _rp_lh_width;
							_rp_lh_bottom = 0;
							_rp_lh_top    = _rp_lh_bottom + _rp_lh_height;
							hull() {
								// upper horizontal bar
								translate([_rp_lh_top - _er, _rp_lh_left])
									square([_er, _rp_lh_width]);
								// lower left corner
								translate([_rp_lh_bottom + _er, _rp_lh_left + _er])
									circle(r = _er, $fn = _res);
								// lower right corner
								translate([_rp_lh_bottom + _er, _rp_lh_right - _er])
									circle(r = _er, $fn = _res);
							}
						}

					} // union of blocks

					// minus the hole for the threaded insert
					translate([carriage_belt_holder_insert_y(), carriage_belt_holder_insert_x(), 0])
						circle(d = carriage_belt_holder_insert_hole_diameter(), 
							$fn = carriage_belt_holder_edge_resolution());
				} // difference

			} // linear_extrude
}

/**
 * Renders the lower part of the base plate of the carriage that holds the wheels.
 */
module _carriage_base_plate() {
	union() {
		_carriage_lower_base_plate();
		_carriage_upper_base_plate();
	}
}

/**
 * Creates the carriage assembly by rendering it from scratch. This module is not to be called externally, use 
 * carriage() instead.
 */
module _render_carriage() {
	color_printed_carriage()
		render() {
			// the base plate			
			_carriage_base_plate();
			
			// the lower belt holder
			translate([carriage_plate_thickness(), -gt2_pulley_inner_diameter_min()/2, carriage_lower_belt_holder_z()])
				_carriage_belt_holder();
			
			// the upper belt holder
			translate([carriage_plate_thickness(), -gt2_pulley_inner_diameter_min()/2, carriage_upper_belt_holder_z()])
				mirror([0, 0, 1])
					_carriage_belt_holder();

			// TODO add magnet holders

		} 
}

/**
 * Main module to use the pre-rendered carriage. The assembly is centered on the Z axis in Y direction for easier 
 * manipulation, similar to the MakerSlide extrusion. 
 */
module carriage() {
	bom_entry(section = "Printed Parts", description = "Arm", size = "Outer Carriage");
	color_printed_outer_frame()
		import(file = "carriage.stl");
}

/**
 * Renders the hardware used for a fixed wheel.
 */
module _carriage_hardware_fixed_wheel() {
	// washer on the inner side (facing away from the rail)
	translate([carriage_plate_thickness() + epsilon(), 0, 0])
		washer(M5);
	// washer between the plate and the wheel
	translate([-(washer_thickness(M5) + epsilon()), 0, 0])
		washer(M5);
	// wheel assembly
	_vwheel_x = -(washer_thickness(M5) + epsilon() + 
		          vwheel_assembly_thickness() - vwheel_assembly_overhang() + epsilon()); 
	translate([_vwheel_x, 0, 0])
		vslot_wheel(include_bearings = true);
	// washer on the outer side of the wheel
	_outer_washer_x = _vwheel_x - vwheel_assembly_overhang() - epsilon() - washer_thickness(M5);
	translate([_outer_washer_x, 0, 0])
		washer(M5);
	// screw
	_screw_min_length = 3 * washer_thickness(M5) + carriage_plate_thickness() + 
	                    vwheel_assembly_thickness() + nut_thickness(M5);
	_screw_max_length = 2 * washer_thickness(M5) + carriage_plate_thickness() + 
	                    vwheel_assembly_thickness()/2 + makerslide_base_depth();
	translate([carriage_plate_thickness() + epsilon() + washer_thickness(M5) + epsilon(), 0, 0])
		rotate([0, 180, 0])
			screw(size = M5, min_length = _screw_min_length, max_length = _screw_max_length); 
	// nut
	_nut_x = _outer_washer_x - epsilon();
	translate([_nut_x, 0, 0])
		rotate([0, 180, 0])
			nut(M5);
}

/**
 * Renders the hardware used for a fixed wheel.
 */
module _carriage_hardware_adjustable_wheel() {
	// spacer
	translate([carriage_plate_thickness() + epsilon(), 0, 0])
		vslot_wheel_spacer();
	// washer between the screw and the spacer
	_inner_washer_x = carriage_plate_thickness() + epsilon() + vwheel_spacer_hex_height() + epsilon();
	translate([_inner_washer_x, 0, 0])
		washer(M5);
	// washer between the plate and the wheel
	translate([-(washer_thickness(M5) + epsilon()), 0, 0])
		washer(M5);
	// wheel assembly
	_vwheel_x = -(washer_thickness(M5) + epsilon() + 
		          vwheel_assembly_thickness() - vwheel_assembly_overhang() + epsilon()); 
	translate([_vwheel_x, 0, 0])
		vslot_wheel(include_bearings = true);
	// washer on the outer side of the wheel
	_outer_washer_x = _vwheel_x - vwheel_assembly_overhang() - epsilon() - washer_thickness(M5);
	translate([_outer_washer_x, 0, 0])
		washer(M5);
	// screw
	_screw_min_length = 3 * washer_thickness(M5) + vwheel_spacer_hex_height() + carriage_plate_thickness() + 
	                    vwheel_assembly_thickness() + nut_thickness(M5);
	_screw_max_length = 2 * washer_thickness(M5) + vwheel_spacer_hex_height() + carriage_plate_thickness() +
					    vwheel_assembly_thickness()/2 + makerslide_base_depth();
	translate([_inner_washer_x + epsilon() + washer_thickness(M5) + epsilon(), 0, 0])
		rotate([0, 180, 0])
			screw(size = M5, min_length = _screw_min_length, max_length = _screw_max_length); 
	// nut
	_nut_x = _outer_washer_x - epsilon();
	translate([_nut_x, 0, 0])
		rotate([0, 180, 0])
			nut(M5);
}

/**
 * Renders the hardware used to hold the belt in place.
 */
module _carriage_hardware_belt_fixation() { 
	translate([0, carriage_belt_holder_insert_x(), carriage_belt_holder_insert_y()]) {
		// the threaded insert
		_insert_size = 7;
		insert(size = M3, length = _insert_size);
		// a washer on top
		translate([carriage_belt_holder_depth() + epsilon(), 0, 0])
			washer_large(size = M3);
		// the screw to hold everything in place
		translate([carriage_belt_holder_depth() + epsilon() + washer_thickness_large(M3) + epsilon(), 0, 0])
			rotate(180, 0, 0)
				screw(size = M3, 
					min_length = washer_thickness_large(M3), 
					max_length = washer_thickness_large(M3) + _insert_size);
	}
}

/** 
 * Renders the hardware (nuts, bolts, screws) that are used to fixed the printed part to the surrounding parts.
 * This also includes the V-Wheels and their supporting material.
 */
module carriage_hardware() {
	// the fixed wheels on the left-hand side
	translate([0, carriage_wheel1_y(), carriage_wheel1_z()])
		_carriage_hardware_fixed_wheel();
	translate([0, carriage_wheel2_y(), carriage_wheel2_z()])
		_carriage_hardware_fixed_wheel();
	// the adjustable wheel on the right-hand side
	translate([0, carriage_wheel3_y(), carriage_wheel3_z()])
		_carriage_hardware_adjustable_wheel();

	// the belt fixation for the lower holder
	translate([carriage_plate_thickness(), -gt2_pulley_inner_diameter_min()/2, carriage_lower_belt_holder_z()])
		_carriage_hardware_belt_fixation();

	// the belt fixation for the upper holder
	translate([carriage_plate_thickness(), -gt2_pulley_inner_diameter_min()/2, carriage_upper_belt_holder_z()])
		mirror([0, 0, 1])
			_carriage_hardware_belt_fixation();

}

_render_carriage();
